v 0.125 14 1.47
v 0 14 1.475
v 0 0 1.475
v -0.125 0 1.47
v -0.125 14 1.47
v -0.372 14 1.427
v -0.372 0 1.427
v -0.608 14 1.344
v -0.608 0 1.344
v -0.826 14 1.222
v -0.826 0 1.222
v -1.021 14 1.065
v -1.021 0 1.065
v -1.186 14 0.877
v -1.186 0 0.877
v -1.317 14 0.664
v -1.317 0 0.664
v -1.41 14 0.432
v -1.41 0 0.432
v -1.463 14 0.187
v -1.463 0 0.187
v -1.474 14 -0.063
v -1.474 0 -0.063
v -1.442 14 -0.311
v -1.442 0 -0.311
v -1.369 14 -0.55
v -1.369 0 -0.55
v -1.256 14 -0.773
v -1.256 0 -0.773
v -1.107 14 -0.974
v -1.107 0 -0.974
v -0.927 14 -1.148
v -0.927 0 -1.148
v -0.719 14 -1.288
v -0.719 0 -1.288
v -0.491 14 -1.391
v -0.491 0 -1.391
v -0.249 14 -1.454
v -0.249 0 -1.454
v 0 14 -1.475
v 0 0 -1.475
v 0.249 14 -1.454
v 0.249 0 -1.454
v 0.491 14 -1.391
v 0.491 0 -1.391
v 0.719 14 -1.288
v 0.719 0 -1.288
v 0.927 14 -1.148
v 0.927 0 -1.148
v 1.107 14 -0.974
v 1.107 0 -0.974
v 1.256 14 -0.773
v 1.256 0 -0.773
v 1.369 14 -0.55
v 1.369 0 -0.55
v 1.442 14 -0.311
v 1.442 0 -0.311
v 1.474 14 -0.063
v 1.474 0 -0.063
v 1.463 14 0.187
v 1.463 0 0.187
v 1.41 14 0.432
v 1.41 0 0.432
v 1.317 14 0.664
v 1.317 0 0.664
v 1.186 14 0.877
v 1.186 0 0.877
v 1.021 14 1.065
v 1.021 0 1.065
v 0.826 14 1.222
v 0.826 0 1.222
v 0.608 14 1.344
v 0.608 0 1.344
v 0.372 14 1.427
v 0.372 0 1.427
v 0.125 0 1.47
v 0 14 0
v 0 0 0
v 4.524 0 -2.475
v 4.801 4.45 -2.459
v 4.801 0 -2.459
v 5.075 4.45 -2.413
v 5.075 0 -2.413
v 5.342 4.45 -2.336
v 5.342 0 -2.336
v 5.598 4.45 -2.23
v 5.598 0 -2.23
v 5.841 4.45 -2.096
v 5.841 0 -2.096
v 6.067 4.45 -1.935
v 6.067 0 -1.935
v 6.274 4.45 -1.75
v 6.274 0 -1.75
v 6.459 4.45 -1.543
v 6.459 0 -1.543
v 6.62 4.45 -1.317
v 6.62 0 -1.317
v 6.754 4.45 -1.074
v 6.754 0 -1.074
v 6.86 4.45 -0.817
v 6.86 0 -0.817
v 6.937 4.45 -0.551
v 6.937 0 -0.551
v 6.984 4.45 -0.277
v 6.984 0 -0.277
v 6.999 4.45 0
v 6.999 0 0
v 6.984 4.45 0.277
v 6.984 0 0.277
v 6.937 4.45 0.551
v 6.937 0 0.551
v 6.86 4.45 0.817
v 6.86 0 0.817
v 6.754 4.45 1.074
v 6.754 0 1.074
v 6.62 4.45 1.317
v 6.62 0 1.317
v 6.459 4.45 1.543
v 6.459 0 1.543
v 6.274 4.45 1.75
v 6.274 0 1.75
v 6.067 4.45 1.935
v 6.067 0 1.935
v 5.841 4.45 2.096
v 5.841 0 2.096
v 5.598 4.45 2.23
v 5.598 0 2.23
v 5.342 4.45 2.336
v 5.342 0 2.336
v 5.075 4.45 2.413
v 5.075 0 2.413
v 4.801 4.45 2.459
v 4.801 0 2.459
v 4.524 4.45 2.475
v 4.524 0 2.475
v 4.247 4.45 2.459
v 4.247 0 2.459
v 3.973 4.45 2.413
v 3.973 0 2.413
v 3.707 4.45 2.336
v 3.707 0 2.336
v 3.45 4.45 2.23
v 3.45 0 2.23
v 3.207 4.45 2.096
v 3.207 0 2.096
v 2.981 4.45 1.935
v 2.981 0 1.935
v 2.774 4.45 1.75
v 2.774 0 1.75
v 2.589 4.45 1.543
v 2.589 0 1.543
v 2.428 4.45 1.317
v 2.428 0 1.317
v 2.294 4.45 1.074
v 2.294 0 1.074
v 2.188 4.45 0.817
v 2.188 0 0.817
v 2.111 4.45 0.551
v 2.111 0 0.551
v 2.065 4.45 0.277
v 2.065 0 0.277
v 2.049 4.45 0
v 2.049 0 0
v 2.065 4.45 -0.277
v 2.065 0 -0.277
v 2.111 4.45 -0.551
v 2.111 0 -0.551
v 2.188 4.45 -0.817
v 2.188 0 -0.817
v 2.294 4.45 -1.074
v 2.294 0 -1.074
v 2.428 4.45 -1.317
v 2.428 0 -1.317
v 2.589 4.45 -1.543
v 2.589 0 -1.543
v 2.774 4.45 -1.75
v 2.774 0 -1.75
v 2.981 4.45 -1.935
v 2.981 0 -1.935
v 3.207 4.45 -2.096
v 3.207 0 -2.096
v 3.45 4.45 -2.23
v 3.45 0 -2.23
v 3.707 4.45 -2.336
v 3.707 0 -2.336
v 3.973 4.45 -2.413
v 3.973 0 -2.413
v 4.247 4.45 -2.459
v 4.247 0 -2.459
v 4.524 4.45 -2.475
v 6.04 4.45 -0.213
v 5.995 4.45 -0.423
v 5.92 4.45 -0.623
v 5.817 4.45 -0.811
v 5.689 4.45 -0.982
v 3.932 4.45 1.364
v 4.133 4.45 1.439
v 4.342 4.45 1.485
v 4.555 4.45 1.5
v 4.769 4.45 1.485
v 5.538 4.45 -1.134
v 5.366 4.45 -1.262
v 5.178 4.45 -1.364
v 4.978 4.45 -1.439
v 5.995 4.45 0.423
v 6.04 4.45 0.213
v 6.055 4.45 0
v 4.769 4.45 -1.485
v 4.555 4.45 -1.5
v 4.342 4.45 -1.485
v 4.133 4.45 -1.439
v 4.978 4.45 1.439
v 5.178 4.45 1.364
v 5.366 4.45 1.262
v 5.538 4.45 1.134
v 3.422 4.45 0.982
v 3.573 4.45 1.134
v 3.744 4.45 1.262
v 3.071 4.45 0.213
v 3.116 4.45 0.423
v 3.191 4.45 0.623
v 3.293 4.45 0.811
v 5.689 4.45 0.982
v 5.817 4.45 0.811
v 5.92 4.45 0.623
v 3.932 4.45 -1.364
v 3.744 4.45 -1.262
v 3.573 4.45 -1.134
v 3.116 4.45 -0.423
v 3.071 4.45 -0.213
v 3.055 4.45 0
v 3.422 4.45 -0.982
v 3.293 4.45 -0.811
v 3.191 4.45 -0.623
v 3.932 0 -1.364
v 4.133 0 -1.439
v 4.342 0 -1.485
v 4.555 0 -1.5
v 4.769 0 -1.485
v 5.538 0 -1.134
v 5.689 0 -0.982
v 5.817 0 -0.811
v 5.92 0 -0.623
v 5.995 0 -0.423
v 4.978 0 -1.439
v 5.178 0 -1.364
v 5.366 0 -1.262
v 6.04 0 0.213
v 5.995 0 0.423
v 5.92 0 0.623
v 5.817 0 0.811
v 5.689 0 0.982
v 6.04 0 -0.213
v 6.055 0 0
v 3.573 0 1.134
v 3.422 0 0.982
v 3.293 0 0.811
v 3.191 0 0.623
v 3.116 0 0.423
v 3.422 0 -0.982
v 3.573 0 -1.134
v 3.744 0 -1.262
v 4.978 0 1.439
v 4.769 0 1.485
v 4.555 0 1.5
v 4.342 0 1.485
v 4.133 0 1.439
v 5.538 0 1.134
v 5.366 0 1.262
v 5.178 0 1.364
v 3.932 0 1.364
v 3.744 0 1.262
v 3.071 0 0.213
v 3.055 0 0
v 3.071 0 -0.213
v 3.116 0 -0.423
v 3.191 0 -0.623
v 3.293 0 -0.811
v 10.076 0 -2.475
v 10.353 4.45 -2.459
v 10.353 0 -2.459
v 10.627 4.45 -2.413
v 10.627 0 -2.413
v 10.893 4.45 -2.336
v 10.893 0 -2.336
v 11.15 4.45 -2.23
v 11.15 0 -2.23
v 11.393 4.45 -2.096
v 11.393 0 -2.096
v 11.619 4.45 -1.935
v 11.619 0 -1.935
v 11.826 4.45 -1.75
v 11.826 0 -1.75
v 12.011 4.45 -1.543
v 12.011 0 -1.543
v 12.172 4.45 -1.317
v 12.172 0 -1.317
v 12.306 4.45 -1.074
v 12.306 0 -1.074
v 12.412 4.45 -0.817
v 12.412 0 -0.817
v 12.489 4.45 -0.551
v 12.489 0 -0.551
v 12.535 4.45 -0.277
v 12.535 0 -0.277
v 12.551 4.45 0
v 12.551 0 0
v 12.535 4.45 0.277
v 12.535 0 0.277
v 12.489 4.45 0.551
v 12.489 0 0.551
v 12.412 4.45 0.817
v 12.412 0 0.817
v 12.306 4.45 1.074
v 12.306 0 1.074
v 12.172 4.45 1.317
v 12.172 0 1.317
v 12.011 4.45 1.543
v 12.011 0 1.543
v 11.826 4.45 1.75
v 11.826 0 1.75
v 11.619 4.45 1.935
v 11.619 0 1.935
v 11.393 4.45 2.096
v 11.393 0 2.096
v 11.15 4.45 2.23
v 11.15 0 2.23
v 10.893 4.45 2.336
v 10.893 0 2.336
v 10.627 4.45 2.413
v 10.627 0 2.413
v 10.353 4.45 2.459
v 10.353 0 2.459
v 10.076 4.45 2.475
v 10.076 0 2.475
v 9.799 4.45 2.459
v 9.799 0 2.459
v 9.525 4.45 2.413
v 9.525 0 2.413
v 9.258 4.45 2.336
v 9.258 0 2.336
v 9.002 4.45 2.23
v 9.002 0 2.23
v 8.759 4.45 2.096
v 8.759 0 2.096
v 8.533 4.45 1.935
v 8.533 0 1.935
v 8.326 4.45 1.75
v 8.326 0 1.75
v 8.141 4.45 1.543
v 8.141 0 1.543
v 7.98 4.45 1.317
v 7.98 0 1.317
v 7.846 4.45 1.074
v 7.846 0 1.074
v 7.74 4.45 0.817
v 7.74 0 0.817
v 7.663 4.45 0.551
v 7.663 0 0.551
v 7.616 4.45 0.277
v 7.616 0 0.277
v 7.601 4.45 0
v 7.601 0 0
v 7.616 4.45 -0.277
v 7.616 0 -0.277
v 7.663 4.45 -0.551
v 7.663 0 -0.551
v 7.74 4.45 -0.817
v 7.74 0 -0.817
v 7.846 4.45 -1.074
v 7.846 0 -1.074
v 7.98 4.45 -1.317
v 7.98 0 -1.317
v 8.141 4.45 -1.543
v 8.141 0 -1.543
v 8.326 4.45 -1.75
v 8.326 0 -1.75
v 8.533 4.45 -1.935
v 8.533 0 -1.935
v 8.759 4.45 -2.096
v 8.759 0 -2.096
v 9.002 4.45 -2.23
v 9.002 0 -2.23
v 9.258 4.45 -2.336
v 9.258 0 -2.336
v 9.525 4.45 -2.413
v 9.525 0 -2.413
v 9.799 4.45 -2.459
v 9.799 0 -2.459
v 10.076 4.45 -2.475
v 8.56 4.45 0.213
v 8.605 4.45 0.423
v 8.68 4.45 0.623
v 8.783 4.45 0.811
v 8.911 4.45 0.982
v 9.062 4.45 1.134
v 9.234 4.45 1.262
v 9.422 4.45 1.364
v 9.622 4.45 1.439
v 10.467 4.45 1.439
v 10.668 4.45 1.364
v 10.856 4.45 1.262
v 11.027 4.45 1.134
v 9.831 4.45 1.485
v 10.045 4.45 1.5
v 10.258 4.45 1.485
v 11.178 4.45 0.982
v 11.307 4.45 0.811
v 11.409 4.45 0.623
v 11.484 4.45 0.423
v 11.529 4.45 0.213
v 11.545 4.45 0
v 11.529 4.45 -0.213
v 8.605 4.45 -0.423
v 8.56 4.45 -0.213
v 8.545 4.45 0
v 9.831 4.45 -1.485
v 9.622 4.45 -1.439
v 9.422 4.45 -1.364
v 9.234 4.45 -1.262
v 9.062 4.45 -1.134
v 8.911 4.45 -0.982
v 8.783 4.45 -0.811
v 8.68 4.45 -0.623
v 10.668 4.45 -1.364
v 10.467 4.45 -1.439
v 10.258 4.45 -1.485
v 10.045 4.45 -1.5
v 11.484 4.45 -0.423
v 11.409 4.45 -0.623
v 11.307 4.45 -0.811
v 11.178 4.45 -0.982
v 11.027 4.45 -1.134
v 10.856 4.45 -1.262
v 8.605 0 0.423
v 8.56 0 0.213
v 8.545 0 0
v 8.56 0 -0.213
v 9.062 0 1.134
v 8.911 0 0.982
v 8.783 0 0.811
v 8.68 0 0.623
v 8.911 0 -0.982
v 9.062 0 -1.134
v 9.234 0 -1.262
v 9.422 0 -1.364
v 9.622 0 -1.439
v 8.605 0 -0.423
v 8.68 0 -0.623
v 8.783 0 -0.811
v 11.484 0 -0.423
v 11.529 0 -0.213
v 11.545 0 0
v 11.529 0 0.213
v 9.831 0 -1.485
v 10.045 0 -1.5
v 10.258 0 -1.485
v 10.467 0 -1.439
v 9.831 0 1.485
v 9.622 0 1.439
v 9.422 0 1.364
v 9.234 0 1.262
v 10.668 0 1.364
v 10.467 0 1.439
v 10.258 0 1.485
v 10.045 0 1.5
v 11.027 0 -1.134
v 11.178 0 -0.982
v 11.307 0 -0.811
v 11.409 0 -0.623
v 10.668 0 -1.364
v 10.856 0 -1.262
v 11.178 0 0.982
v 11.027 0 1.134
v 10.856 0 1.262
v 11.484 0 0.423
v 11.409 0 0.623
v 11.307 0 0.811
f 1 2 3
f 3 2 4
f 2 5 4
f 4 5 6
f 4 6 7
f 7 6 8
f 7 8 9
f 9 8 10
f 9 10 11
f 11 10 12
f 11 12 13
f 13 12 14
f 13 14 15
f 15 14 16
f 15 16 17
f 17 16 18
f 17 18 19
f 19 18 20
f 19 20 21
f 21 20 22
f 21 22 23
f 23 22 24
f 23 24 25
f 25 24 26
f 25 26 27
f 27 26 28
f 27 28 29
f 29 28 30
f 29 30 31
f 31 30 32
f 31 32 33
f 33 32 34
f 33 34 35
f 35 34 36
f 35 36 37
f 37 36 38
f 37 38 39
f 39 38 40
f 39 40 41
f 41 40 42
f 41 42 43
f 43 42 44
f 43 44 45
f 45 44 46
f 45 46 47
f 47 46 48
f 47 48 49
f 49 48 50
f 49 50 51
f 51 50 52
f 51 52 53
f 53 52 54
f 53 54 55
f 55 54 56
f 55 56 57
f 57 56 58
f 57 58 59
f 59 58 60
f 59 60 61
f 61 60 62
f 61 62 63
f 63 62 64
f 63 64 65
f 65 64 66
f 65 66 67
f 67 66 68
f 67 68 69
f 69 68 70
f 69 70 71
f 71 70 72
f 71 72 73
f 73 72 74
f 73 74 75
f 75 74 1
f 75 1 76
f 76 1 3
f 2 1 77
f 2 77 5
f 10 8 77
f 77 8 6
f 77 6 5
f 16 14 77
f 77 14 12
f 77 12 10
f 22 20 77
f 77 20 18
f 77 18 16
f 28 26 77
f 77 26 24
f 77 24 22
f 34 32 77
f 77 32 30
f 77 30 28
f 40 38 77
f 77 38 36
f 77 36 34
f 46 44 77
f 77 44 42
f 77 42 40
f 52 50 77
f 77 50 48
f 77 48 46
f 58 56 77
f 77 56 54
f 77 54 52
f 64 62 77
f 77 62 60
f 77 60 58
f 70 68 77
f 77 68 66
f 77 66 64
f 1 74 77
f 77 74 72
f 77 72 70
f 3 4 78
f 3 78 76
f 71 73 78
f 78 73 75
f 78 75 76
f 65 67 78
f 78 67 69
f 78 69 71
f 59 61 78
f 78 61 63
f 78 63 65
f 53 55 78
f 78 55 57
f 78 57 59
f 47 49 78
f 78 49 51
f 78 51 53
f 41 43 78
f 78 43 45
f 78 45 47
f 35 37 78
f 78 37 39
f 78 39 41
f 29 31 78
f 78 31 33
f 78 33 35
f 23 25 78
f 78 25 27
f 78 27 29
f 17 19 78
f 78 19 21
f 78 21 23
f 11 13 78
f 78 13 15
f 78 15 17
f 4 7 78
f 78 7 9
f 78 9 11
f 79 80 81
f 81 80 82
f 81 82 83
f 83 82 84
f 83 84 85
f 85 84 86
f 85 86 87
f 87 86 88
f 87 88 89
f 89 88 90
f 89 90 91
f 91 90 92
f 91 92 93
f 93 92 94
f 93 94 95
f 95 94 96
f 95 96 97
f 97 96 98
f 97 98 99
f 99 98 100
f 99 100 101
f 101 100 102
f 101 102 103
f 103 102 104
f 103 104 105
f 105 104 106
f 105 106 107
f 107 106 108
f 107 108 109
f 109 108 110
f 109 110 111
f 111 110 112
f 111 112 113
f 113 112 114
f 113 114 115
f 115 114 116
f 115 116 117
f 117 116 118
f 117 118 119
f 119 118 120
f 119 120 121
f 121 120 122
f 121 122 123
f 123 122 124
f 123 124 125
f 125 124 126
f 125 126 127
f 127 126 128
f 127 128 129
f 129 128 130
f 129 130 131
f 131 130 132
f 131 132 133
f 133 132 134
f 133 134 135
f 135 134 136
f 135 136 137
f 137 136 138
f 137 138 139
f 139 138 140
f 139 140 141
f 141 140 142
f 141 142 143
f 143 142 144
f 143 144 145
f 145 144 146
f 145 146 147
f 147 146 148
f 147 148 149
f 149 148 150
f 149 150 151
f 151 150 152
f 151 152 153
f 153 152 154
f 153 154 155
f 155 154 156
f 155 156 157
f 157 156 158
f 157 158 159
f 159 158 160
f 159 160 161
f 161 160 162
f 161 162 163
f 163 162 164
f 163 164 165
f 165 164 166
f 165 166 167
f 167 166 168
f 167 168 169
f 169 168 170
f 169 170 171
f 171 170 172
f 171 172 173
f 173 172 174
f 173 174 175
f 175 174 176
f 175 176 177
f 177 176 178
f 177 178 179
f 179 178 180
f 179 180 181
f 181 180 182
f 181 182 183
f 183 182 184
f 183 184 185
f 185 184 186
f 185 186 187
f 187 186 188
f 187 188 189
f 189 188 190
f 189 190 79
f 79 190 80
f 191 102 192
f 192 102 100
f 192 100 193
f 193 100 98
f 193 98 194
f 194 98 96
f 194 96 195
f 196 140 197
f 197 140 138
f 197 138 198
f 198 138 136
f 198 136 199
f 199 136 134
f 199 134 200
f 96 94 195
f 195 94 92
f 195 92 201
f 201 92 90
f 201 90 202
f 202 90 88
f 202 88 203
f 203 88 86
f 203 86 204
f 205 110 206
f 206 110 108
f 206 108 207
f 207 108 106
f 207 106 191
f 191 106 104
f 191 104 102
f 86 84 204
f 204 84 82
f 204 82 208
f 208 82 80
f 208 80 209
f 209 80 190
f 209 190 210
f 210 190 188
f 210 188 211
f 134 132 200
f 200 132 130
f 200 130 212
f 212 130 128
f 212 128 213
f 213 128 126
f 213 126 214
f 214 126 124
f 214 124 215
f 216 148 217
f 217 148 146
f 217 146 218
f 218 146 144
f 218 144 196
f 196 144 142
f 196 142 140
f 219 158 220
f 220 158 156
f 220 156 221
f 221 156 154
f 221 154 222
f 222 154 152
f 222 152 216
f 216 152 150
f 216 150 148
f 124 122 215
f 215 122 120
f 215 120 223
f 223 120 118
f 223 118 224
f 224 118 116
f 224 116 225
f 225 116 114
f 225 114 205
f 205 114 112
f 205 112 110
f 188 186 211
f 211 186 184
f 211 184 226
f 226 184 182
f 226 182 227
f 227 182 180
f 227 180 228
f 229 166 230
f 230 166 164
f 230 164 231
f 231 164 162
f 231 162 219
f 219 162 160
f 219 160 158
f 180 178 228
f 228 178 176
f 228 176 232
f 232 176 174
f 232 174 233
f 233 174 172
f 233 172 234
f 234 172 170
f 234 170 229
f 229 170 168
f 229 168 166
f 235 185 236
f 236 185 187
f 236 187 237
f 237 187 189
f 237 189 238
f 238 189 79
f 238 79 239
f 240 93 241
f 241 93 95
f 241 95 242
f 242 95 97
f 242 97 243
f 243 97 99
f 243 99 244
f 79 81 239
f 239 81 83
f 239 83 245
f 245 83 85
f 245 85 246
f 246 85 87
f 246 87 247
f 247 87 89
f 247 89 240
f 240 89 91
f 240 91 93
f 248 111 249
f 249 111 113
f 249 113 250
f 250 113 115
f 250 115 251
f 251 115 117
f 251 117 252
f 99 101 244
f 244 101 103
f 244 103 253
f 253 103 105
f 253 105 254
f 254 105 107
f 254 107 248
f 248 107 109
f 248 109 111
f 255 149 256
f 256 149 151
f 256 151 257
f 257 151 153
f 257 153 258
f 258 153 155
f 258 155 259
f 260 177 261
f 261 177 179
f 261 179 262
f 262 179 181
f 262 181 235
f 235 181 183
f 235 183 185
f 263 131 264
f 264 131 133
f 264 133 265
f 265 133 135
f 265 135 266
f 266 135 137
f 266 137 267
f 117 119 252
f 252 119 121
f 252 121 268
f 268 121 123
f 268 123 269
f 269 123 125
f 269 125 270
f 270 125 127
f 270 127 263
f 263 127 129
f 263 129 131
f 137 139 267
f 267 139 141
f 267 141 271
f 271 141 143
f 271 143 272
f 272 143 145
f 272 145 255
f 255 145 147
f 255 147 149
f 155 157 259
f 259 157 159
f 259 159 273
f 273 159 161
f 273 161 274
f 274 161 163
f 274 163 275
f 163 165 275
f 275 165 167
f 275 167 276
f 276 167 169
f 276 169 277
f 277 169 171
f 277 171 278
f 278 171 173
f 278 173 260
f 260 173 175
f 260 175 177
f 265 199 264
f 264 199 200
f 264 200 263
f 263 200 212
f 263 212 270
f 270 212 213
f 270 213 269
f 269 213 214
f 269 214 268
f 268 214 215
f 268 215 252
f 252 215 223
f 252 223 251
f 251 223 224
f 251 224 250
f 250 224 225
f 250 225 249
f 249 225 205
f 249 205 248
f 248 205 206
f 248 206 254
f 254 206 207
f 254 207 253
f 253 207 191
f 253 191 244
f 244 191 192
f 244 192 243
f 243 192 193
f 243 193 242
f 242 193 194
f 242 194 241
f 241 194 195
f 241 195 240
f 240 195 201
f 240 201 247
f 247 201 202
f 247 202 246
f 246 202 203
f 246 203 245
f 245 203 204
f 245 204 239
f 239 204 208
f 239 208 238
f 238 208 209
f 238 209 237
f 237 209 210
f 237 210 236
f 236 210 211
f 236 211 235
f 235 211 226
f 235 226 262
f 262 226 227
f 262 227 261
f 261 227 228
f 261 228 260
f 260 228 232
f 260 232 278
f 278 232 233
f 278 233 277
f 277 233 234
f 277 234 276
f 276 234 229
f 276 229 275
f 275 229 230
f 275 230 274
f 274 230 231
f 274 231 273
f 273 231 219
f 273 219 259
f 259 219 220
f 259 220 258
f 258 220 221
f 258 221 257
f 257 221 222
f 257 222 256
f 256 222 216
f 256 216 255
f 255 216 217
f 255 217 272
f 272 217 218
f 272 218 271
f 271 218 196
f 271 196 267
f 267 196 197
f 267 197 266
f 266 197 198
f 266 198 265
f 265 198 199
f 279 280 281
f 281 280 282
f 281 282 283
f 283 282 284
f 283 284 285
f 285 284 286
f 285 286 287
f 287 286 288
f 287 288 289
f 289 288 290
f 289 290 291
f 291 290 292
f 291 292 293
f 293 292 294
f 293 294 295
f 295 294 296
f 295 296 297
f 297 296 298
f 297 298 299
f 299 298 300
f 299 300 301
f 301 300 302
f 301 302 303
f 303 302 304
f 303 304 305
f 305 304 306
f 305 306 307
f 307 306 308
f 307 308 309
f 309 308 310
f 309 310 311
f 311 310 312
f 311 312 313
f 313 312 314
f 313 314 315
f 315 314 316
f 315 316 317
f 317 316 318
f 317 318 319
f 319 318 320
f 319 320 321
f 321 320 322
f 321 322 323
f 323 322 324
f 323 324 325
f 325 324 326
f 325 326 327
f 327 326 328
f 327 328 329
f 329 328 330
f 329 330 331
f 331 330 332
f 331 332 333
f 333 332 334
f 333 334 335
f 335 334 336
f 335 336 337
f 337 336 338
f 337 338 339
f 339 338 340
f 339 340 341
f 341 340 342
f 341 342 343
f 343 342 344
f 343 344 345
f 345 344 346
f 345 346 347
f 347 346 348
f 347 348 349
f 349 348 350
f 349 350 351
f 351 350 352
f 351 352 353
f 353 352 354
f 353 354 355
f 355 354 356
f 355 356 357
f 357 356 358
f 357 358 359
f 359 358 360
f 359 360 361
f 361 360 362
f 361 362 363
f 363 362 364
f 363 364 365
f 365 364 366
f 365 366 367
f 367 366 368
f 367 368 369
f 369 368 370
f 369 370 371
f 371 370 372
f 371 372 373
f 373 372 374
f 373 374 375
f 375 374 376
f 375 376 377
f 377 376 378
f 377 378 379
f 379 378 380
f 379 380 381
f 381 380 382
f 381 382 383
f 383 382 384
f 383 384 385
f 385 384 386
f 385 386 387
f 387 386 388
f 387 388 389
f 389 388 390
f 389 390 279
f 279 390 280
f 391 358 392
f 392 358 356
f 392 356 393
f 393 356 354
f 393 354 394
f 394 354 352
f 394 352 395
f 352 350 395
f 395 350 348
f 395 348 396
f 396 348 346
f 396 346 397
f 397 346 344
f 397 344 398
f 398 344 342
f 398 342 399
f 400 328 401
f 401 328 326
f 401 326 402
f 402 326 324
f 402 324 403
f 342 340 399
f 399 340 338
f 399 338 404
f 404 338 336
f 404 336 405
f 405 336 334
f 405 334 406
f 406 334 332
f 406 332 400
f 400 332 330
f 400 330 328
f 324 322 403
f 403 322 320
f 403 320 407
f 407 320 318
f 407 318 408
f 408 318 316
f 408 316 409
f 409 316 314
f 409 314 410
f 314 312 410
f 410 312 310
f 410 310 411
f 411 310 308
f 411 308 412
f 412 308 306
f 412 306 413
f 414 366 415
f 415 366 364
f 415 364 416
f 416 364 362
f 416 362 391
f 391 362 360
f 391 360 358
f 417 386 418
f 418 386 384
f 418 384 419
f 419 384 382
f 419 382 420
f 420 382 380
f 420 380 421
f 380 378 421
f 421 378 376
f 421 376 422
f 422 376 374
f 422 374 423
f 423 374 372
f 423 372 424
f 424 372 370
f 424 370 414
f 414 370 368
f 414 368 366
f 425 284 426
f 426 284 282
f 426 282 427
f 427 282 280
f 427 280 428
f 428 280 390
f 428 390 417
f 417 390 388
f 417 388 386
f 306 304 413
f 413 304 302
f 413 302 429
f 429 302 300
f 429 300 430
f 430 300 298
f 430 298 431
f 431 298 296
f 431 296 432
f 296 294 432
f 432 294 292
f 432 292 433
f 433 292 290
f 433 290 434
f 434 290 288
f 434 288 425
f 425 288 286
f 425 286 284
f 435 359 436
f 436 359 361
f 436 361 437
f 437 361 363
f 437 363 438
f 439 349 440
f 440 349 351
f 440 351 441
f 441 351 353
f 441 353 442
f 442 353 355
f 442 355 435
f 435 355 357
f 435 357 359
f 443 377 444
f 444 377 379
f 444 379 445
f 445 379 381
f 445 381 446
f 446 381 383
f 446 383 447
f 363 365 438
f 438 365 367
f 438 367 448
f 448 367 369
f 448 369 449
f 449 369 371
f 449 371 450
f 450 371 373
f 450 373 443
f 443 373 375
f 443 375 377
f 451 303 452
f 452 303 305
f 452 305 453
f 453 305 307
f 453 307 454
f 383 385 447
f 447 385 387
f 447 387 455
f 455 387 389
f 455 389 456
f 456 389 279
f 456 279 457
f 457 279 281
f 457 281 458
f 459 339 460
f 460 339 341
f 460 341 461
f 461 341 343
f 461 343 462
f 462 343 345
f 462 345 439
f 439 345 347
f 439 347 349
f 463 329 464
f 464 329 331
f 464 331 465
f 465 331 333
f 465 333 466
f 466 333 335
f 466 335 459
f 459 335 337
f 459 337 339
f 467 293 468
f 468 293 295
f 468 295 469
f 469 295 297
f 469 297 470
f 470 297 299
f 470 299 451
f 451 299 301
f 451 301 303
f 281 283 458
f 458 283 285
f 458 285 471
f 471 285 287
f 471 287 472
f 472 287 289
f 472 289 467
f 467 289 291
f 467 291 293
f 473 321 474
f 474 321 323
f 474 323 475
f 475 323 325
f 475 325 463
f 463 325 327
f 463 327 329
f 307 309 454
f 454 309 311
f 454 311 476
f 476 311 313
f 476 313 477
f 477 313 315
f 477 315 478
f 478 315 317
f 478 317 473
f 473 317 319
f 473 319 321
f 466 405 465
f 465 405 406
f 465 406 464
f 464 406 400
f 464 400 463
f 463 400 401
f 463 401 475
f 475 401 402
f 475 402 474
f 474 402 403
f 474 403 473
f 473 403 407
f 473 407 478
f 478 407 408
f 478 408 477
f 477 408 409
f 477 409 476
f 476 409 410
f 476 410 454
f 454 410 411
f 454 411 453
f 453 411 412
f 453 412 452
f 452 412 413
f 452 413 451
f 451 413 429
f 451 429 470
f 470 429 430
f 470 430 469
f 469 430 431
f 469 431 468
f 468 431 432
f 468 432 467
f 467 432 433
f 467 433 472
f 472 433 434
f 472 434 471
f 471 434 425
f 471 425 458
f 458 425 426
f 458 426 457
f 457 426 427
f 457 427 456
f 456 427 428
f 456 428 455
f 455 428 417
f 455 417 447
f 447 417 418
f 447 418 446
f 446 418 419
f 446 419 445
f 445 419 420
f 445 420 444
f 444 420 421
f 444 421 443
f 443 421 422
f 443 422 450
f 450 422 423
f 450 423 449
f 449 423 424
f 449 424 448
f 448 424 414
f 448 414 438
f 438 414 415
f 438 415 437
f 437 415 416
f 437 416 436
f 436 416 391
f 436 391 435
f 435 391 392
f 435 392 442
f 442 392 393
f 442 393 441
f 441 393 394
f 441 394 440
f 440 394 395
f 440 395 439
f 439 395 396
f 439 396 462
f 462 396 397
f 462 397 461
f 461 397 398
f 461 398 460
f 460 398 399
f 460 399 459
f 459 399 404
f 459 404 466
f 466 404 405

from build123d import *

# Parameters (mm, degrees)
SKETCH1_R           = 1.475
BOSS_EXTRUDE1_DEPTH = 14
SKETCH2_R           = 2.475
BOSS_EXTRUDE2_DEPTH = 4.45
SKETCH3_R           = 1.5
CUT_EXTRUDE1_DEPTH  = 13.096093236


with BuildPart() as part:
    # Sketch1 → Boss-Extrude1 (new body)
    with BuildSketch(Plane(origin=(0, 0, 0), x_dir=(1, 0, 0), z_dir=(0, 1, 0))):
        with Locations(Location((0, 0, 0), (0, 0, 270))):
            Circle(SKETCH1_R)
    extrude(amount=BOSS_EXTRUDE1_DEPTH)


with BuildPart() as body_2:
    # Sketch2 → Boss-Extrude2 (new body)
    with BuildSketch(Plane(origin=(0, 0, 0), x_dir=(1, 0, 0), z_dir=(0, 1, 0))):
        with Locations(Location((4.524096126, 0, 0), (0, 0, 270))):
            Circle(SKETCH2_R)
    extrude(amount=BOSS_EXTRUDE2_DEPTH)

    # Sketch3 → Cut-Extrude1 (cut, through all)
    with BuildSketch(Plane(origin=(0, 4.45, 0), x_dir=(1, 0, 0), z_dir=(0, 1, 0))):
        with Locations(Location((4.555318966, 0, 0), (0, 0, 270))):
            Circle(SKETCH3_R)
    extrude(amount=-CUT_EXTRUDE1_DEPTH, mode=Mode.SUBTRACT)


with BuildPart() as body_3:
    # Mirror23: mirrored copy
    add(body_2.part.mirror(Plane(origin=(7.3, 0, 0), x_dir=(0, 0, 1), z_dir=(1, 0, 0))))


solid = Compound([part.part, body_2.part, body_3.part])
